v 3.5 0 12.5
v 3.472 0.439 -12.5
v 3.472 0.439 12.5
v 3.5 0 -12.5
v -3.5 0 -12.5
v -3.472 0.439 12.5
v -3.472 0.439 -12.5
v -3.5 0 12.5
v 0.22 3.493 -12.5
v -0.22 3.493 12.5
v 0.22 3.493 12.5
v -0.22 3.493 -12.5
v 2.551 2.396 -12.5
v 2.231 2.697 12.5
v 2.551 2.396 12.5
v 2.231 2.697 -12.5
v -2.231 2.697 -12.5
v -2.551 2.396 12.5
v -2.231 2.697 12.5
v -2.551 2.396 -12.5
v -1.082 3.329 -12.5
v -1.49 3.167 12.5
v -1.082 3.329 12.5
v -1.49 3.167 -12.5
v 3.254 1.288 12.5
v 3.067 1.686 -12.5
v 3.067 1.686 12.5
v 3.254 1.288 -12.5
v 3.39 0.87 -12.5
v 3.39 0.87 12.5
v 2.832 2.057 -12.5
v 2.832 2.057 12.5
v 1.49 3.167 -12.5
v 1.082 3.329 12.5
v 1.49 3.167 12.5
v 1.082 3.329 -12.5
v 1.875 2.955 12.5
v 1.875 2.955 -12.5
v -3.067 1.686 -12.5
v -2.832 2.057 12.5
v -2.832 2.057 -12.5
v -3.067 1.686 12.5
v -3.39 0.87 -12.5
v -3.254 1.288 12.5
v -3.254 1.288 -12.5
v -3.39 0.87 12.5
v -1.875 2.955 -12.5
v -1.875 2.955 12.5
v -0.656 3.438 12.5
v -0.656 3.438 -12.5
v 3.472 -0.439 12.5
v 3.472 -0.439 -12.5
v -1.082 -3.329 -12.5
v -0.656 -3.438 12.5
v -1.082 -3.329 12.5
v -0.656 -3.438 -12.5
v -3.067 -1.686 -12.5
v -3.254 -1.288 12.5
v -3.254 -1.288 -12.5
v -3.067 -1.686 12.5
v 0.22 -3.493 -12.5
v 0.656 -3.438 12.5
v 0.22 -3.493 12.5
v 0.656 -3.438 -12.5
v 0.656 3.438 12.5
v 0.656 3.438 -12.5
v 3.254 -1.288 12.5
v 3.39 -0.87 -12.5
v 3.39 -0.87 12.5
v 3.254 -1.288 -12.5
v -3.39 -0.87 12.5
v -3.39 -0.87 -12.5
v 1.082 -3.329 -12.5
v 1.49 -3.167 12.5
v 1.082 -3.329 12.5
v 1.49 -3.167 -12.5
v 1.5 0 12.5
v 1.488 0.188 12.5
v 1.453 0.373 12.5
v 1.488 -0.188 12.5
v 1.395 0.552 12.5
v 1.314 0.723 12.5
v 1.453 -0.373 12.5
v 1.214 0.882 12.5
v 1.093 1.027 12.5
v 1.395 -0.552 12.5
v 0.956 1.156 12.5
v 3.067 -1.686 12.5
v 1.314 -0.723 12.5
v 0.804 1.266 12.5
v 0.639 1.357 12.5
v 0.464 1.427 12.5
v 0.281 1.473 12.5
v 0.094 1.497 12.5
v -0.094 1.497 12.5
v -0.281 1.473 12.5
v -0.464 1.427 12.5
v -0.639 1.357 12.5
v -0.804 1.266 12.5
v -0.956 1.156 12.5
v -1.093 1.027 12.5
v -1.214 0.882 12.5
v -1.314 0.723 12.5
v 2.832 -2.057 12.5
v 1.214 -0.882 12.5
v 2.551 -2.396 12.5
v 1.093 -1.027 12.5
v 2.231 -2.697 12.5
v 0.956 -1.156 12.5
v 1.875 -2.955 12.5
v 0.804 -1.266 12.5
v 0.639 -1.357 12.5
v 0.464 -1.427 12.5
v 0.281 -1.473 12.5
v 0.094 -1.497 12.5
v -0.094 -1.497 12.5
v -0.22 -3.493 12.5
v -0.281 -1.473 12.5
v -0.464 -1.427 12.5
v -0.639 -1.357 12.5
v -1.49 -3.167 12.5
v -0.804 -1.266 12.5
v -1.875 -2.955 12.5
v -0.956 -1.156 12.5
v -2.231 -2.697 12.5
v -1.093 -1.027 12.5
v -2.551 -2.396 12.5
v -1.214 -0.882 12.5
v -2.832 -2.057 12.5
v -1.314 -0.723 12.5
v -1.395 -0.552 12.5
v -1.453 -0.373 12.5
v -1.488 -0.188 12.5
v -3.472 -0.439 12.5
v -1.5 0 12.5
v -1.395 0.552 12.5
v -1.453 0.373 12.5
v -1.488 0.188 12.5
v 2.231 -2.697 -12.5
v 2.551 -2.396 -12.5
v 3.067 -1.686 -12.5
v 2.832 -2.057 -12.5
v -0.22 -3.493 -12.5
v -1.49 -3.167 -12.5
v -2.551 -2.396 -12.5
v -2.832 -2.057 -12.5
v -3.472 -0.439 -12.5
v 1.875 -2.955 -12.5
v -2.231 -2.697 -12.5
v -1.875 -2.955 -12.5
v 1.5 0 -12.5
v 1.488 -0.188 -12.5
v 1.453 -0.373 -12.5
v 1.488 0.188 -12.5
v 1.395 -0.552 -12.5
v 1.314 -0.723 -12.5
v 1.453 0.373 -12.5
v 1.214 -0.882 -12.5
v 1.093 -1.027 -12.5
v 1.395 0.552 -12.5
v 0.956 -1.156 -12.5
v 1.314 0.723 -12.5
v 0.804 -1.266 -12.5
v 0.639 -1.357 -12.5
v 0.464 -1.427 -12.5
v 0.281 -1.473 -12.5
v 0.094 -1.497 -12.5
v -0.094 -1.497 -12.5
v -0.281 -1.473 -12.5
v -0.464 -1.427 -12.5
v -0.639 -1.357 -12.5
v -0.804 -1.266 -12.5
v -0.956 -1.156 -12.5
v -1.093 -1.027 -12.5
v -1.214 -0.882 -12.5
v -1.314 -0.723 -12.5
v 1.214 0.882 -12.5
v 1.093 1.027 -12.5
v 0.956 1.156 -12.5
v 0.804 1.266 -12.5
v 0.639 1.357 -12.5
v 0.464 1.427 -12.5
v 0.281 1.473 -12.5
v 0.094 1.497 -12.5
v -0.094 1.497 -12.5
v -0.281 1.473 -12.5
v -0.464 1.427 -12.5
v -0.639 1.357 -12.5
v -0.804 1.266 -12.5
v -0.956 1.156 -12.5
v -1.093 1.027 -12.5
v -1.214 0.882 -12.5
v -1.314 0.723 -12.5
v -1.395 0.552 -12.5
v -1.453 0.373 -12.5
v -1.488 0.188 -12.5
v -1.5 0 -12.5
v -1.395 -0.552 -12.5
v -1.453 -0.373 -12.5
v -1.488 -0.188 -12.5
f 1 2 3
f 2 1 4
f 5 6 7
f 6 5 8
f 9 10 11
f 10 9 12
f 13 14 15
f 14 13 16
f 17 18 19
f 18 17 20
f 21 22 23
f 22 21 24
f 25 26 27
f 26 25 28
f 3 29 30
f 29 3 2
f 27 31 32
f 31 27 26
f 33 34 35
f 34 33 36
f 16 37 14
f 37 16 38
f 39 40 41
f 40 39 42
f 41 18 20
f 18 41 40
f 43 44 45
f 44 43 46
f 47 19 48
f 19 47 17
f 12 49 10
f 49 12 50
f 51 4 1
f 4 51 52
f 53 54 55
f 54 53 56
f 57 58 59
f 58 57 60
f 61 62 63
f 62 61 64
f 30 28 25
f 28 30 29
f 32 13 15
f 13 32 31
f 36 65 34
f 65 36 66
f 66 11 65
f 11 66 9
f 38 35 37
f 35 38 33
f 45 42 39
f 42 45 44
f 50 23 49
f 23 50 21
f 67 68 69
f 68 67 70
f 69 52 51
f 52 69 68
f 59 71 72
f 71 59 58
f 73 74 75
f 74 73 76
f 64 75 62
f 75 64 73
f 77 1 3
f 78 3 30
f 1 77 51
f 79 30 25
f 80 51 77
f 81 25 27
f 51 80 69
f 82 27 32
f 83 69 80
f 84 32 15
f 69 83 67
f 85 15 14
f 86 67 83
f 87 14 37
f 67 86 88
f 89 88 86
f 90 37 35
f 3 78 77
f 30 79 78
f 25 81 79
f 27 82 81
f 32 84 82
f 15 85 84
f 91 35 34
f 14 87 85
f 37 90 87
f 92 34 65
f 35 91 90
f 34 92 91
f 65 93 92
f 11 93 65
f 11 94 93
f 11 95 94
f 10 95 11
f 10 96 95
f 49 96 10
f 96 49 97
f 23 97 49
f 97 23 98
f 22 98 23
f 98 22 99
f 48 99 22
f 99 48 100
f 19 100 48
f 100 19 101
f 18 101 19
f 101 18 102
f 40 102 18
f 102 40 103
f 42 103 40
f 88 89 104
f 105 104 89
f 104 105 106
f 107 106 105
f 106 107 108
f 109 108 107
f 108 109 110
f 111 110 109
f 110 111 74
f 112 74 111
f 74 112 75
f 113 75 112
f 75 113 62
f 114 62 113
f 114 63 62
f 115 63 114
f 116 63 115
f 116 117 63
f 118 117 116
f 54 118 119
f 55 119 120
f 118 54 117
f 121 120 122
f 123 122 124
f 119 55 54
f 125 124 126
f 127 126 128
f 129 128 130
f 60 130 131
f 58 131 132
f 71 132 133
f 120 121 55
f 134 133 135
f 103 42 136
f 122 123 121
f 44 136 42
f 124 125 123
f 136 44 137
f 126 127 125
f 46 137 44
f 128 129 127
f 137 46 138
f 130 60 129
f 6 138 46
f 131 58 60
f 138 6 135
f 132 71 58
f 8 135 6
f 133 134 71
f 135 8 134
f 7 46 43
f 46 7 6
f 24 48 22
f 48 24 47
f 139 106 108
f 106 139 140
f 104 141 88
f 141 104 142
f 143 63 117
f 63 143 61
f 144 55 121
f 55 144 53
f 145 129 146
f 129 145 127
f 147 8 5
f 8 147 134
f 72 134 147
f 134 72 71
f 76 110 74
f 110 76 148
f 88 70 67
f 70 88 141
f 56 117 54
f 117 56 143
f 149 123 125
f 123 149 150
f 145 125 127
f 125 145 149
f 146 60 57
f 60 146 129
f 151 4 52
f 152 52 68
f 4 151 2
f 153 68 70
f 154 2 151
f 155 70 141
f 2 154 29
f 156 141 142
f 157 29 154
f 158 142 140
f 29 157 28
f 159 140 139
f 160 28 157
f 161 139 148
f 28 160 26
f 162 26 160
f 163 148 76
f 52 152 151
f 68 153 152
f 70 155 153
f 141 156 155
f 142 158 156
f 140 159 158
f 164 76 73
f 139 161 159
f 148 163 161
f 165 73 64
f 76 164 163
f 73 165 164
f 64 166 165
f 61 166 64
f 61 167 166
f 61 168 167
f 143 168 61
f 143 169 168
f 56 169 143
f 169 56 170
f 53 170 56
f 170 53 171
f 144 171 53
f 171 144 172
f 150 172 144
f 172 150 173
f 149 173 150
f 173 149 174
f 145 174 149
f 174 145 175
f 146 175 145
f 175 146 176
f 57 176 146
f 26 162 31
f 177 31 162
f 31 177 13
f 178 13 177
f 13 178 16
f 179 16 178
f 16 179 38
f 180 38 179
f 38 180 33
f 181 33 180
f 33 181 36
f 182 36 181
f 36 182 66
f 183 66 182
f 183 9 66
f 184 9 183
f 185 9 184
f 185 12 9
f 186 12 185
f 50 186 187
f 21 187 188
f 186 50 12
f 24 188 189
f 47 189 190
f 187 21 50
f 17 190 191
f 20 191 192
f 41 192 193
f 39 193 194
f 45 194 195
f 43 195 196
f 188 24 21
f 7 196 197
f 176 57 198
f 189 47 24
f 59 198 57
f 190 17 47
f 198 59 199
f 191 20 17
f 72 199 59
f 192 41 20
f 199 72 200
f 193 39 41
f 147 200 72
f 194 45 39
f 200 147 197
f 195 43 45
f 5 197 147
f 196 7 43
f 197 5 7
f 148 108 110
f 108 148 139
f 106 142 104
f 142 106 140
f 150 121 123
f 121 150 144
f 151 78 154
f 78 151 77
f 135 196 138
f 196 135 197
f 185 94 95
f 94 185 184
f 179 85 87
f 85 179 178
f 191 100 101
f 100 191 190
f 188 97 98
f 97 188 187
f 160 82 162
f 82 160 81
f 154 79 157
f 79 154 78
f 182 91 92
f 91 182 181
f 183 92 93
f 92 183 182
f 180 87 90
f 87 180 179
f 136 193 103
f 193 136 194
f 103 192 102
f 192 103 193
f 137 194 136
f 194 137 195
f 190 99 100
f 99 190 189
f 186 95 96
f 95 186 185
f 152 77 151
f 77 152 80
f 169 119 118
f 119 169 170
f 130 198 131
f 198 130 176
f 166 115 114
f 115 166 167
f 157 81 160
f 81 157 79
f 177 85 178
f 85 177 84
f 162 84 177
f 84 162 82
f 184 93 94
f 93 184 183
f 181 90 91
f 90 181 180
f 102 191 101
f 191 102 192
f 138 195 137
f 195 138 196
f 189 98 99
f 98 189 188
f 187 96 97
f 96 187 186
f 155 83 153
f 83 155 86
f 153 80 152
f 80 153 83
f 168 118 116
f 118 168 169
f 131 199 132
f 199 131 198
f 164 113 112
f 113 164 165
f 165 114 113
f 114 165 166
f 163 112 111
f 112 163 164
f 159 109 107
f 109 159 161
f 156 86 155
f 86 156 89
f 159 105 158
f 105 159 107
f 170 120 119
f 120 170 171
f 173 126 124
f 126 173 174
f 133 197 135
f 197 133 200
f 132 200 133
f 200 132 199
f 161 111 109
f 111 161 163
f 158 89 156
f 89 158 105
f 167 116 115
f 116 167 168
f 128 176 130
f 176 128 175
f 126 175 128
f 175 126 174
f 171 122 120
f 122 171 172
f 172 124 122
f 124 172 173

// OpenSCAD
$fn = 50;


difference() {
	union() {
		translate(v = [0, 0, -12.5000000000]) {
			cylinder(h = 25, r = 3.5000000000);
		}
	}
	union() {
		translate(v = [0, 0, -100.0000000000]) {
			cylinder(h = 200, r = 1.5000000000);
		}
	}
}
